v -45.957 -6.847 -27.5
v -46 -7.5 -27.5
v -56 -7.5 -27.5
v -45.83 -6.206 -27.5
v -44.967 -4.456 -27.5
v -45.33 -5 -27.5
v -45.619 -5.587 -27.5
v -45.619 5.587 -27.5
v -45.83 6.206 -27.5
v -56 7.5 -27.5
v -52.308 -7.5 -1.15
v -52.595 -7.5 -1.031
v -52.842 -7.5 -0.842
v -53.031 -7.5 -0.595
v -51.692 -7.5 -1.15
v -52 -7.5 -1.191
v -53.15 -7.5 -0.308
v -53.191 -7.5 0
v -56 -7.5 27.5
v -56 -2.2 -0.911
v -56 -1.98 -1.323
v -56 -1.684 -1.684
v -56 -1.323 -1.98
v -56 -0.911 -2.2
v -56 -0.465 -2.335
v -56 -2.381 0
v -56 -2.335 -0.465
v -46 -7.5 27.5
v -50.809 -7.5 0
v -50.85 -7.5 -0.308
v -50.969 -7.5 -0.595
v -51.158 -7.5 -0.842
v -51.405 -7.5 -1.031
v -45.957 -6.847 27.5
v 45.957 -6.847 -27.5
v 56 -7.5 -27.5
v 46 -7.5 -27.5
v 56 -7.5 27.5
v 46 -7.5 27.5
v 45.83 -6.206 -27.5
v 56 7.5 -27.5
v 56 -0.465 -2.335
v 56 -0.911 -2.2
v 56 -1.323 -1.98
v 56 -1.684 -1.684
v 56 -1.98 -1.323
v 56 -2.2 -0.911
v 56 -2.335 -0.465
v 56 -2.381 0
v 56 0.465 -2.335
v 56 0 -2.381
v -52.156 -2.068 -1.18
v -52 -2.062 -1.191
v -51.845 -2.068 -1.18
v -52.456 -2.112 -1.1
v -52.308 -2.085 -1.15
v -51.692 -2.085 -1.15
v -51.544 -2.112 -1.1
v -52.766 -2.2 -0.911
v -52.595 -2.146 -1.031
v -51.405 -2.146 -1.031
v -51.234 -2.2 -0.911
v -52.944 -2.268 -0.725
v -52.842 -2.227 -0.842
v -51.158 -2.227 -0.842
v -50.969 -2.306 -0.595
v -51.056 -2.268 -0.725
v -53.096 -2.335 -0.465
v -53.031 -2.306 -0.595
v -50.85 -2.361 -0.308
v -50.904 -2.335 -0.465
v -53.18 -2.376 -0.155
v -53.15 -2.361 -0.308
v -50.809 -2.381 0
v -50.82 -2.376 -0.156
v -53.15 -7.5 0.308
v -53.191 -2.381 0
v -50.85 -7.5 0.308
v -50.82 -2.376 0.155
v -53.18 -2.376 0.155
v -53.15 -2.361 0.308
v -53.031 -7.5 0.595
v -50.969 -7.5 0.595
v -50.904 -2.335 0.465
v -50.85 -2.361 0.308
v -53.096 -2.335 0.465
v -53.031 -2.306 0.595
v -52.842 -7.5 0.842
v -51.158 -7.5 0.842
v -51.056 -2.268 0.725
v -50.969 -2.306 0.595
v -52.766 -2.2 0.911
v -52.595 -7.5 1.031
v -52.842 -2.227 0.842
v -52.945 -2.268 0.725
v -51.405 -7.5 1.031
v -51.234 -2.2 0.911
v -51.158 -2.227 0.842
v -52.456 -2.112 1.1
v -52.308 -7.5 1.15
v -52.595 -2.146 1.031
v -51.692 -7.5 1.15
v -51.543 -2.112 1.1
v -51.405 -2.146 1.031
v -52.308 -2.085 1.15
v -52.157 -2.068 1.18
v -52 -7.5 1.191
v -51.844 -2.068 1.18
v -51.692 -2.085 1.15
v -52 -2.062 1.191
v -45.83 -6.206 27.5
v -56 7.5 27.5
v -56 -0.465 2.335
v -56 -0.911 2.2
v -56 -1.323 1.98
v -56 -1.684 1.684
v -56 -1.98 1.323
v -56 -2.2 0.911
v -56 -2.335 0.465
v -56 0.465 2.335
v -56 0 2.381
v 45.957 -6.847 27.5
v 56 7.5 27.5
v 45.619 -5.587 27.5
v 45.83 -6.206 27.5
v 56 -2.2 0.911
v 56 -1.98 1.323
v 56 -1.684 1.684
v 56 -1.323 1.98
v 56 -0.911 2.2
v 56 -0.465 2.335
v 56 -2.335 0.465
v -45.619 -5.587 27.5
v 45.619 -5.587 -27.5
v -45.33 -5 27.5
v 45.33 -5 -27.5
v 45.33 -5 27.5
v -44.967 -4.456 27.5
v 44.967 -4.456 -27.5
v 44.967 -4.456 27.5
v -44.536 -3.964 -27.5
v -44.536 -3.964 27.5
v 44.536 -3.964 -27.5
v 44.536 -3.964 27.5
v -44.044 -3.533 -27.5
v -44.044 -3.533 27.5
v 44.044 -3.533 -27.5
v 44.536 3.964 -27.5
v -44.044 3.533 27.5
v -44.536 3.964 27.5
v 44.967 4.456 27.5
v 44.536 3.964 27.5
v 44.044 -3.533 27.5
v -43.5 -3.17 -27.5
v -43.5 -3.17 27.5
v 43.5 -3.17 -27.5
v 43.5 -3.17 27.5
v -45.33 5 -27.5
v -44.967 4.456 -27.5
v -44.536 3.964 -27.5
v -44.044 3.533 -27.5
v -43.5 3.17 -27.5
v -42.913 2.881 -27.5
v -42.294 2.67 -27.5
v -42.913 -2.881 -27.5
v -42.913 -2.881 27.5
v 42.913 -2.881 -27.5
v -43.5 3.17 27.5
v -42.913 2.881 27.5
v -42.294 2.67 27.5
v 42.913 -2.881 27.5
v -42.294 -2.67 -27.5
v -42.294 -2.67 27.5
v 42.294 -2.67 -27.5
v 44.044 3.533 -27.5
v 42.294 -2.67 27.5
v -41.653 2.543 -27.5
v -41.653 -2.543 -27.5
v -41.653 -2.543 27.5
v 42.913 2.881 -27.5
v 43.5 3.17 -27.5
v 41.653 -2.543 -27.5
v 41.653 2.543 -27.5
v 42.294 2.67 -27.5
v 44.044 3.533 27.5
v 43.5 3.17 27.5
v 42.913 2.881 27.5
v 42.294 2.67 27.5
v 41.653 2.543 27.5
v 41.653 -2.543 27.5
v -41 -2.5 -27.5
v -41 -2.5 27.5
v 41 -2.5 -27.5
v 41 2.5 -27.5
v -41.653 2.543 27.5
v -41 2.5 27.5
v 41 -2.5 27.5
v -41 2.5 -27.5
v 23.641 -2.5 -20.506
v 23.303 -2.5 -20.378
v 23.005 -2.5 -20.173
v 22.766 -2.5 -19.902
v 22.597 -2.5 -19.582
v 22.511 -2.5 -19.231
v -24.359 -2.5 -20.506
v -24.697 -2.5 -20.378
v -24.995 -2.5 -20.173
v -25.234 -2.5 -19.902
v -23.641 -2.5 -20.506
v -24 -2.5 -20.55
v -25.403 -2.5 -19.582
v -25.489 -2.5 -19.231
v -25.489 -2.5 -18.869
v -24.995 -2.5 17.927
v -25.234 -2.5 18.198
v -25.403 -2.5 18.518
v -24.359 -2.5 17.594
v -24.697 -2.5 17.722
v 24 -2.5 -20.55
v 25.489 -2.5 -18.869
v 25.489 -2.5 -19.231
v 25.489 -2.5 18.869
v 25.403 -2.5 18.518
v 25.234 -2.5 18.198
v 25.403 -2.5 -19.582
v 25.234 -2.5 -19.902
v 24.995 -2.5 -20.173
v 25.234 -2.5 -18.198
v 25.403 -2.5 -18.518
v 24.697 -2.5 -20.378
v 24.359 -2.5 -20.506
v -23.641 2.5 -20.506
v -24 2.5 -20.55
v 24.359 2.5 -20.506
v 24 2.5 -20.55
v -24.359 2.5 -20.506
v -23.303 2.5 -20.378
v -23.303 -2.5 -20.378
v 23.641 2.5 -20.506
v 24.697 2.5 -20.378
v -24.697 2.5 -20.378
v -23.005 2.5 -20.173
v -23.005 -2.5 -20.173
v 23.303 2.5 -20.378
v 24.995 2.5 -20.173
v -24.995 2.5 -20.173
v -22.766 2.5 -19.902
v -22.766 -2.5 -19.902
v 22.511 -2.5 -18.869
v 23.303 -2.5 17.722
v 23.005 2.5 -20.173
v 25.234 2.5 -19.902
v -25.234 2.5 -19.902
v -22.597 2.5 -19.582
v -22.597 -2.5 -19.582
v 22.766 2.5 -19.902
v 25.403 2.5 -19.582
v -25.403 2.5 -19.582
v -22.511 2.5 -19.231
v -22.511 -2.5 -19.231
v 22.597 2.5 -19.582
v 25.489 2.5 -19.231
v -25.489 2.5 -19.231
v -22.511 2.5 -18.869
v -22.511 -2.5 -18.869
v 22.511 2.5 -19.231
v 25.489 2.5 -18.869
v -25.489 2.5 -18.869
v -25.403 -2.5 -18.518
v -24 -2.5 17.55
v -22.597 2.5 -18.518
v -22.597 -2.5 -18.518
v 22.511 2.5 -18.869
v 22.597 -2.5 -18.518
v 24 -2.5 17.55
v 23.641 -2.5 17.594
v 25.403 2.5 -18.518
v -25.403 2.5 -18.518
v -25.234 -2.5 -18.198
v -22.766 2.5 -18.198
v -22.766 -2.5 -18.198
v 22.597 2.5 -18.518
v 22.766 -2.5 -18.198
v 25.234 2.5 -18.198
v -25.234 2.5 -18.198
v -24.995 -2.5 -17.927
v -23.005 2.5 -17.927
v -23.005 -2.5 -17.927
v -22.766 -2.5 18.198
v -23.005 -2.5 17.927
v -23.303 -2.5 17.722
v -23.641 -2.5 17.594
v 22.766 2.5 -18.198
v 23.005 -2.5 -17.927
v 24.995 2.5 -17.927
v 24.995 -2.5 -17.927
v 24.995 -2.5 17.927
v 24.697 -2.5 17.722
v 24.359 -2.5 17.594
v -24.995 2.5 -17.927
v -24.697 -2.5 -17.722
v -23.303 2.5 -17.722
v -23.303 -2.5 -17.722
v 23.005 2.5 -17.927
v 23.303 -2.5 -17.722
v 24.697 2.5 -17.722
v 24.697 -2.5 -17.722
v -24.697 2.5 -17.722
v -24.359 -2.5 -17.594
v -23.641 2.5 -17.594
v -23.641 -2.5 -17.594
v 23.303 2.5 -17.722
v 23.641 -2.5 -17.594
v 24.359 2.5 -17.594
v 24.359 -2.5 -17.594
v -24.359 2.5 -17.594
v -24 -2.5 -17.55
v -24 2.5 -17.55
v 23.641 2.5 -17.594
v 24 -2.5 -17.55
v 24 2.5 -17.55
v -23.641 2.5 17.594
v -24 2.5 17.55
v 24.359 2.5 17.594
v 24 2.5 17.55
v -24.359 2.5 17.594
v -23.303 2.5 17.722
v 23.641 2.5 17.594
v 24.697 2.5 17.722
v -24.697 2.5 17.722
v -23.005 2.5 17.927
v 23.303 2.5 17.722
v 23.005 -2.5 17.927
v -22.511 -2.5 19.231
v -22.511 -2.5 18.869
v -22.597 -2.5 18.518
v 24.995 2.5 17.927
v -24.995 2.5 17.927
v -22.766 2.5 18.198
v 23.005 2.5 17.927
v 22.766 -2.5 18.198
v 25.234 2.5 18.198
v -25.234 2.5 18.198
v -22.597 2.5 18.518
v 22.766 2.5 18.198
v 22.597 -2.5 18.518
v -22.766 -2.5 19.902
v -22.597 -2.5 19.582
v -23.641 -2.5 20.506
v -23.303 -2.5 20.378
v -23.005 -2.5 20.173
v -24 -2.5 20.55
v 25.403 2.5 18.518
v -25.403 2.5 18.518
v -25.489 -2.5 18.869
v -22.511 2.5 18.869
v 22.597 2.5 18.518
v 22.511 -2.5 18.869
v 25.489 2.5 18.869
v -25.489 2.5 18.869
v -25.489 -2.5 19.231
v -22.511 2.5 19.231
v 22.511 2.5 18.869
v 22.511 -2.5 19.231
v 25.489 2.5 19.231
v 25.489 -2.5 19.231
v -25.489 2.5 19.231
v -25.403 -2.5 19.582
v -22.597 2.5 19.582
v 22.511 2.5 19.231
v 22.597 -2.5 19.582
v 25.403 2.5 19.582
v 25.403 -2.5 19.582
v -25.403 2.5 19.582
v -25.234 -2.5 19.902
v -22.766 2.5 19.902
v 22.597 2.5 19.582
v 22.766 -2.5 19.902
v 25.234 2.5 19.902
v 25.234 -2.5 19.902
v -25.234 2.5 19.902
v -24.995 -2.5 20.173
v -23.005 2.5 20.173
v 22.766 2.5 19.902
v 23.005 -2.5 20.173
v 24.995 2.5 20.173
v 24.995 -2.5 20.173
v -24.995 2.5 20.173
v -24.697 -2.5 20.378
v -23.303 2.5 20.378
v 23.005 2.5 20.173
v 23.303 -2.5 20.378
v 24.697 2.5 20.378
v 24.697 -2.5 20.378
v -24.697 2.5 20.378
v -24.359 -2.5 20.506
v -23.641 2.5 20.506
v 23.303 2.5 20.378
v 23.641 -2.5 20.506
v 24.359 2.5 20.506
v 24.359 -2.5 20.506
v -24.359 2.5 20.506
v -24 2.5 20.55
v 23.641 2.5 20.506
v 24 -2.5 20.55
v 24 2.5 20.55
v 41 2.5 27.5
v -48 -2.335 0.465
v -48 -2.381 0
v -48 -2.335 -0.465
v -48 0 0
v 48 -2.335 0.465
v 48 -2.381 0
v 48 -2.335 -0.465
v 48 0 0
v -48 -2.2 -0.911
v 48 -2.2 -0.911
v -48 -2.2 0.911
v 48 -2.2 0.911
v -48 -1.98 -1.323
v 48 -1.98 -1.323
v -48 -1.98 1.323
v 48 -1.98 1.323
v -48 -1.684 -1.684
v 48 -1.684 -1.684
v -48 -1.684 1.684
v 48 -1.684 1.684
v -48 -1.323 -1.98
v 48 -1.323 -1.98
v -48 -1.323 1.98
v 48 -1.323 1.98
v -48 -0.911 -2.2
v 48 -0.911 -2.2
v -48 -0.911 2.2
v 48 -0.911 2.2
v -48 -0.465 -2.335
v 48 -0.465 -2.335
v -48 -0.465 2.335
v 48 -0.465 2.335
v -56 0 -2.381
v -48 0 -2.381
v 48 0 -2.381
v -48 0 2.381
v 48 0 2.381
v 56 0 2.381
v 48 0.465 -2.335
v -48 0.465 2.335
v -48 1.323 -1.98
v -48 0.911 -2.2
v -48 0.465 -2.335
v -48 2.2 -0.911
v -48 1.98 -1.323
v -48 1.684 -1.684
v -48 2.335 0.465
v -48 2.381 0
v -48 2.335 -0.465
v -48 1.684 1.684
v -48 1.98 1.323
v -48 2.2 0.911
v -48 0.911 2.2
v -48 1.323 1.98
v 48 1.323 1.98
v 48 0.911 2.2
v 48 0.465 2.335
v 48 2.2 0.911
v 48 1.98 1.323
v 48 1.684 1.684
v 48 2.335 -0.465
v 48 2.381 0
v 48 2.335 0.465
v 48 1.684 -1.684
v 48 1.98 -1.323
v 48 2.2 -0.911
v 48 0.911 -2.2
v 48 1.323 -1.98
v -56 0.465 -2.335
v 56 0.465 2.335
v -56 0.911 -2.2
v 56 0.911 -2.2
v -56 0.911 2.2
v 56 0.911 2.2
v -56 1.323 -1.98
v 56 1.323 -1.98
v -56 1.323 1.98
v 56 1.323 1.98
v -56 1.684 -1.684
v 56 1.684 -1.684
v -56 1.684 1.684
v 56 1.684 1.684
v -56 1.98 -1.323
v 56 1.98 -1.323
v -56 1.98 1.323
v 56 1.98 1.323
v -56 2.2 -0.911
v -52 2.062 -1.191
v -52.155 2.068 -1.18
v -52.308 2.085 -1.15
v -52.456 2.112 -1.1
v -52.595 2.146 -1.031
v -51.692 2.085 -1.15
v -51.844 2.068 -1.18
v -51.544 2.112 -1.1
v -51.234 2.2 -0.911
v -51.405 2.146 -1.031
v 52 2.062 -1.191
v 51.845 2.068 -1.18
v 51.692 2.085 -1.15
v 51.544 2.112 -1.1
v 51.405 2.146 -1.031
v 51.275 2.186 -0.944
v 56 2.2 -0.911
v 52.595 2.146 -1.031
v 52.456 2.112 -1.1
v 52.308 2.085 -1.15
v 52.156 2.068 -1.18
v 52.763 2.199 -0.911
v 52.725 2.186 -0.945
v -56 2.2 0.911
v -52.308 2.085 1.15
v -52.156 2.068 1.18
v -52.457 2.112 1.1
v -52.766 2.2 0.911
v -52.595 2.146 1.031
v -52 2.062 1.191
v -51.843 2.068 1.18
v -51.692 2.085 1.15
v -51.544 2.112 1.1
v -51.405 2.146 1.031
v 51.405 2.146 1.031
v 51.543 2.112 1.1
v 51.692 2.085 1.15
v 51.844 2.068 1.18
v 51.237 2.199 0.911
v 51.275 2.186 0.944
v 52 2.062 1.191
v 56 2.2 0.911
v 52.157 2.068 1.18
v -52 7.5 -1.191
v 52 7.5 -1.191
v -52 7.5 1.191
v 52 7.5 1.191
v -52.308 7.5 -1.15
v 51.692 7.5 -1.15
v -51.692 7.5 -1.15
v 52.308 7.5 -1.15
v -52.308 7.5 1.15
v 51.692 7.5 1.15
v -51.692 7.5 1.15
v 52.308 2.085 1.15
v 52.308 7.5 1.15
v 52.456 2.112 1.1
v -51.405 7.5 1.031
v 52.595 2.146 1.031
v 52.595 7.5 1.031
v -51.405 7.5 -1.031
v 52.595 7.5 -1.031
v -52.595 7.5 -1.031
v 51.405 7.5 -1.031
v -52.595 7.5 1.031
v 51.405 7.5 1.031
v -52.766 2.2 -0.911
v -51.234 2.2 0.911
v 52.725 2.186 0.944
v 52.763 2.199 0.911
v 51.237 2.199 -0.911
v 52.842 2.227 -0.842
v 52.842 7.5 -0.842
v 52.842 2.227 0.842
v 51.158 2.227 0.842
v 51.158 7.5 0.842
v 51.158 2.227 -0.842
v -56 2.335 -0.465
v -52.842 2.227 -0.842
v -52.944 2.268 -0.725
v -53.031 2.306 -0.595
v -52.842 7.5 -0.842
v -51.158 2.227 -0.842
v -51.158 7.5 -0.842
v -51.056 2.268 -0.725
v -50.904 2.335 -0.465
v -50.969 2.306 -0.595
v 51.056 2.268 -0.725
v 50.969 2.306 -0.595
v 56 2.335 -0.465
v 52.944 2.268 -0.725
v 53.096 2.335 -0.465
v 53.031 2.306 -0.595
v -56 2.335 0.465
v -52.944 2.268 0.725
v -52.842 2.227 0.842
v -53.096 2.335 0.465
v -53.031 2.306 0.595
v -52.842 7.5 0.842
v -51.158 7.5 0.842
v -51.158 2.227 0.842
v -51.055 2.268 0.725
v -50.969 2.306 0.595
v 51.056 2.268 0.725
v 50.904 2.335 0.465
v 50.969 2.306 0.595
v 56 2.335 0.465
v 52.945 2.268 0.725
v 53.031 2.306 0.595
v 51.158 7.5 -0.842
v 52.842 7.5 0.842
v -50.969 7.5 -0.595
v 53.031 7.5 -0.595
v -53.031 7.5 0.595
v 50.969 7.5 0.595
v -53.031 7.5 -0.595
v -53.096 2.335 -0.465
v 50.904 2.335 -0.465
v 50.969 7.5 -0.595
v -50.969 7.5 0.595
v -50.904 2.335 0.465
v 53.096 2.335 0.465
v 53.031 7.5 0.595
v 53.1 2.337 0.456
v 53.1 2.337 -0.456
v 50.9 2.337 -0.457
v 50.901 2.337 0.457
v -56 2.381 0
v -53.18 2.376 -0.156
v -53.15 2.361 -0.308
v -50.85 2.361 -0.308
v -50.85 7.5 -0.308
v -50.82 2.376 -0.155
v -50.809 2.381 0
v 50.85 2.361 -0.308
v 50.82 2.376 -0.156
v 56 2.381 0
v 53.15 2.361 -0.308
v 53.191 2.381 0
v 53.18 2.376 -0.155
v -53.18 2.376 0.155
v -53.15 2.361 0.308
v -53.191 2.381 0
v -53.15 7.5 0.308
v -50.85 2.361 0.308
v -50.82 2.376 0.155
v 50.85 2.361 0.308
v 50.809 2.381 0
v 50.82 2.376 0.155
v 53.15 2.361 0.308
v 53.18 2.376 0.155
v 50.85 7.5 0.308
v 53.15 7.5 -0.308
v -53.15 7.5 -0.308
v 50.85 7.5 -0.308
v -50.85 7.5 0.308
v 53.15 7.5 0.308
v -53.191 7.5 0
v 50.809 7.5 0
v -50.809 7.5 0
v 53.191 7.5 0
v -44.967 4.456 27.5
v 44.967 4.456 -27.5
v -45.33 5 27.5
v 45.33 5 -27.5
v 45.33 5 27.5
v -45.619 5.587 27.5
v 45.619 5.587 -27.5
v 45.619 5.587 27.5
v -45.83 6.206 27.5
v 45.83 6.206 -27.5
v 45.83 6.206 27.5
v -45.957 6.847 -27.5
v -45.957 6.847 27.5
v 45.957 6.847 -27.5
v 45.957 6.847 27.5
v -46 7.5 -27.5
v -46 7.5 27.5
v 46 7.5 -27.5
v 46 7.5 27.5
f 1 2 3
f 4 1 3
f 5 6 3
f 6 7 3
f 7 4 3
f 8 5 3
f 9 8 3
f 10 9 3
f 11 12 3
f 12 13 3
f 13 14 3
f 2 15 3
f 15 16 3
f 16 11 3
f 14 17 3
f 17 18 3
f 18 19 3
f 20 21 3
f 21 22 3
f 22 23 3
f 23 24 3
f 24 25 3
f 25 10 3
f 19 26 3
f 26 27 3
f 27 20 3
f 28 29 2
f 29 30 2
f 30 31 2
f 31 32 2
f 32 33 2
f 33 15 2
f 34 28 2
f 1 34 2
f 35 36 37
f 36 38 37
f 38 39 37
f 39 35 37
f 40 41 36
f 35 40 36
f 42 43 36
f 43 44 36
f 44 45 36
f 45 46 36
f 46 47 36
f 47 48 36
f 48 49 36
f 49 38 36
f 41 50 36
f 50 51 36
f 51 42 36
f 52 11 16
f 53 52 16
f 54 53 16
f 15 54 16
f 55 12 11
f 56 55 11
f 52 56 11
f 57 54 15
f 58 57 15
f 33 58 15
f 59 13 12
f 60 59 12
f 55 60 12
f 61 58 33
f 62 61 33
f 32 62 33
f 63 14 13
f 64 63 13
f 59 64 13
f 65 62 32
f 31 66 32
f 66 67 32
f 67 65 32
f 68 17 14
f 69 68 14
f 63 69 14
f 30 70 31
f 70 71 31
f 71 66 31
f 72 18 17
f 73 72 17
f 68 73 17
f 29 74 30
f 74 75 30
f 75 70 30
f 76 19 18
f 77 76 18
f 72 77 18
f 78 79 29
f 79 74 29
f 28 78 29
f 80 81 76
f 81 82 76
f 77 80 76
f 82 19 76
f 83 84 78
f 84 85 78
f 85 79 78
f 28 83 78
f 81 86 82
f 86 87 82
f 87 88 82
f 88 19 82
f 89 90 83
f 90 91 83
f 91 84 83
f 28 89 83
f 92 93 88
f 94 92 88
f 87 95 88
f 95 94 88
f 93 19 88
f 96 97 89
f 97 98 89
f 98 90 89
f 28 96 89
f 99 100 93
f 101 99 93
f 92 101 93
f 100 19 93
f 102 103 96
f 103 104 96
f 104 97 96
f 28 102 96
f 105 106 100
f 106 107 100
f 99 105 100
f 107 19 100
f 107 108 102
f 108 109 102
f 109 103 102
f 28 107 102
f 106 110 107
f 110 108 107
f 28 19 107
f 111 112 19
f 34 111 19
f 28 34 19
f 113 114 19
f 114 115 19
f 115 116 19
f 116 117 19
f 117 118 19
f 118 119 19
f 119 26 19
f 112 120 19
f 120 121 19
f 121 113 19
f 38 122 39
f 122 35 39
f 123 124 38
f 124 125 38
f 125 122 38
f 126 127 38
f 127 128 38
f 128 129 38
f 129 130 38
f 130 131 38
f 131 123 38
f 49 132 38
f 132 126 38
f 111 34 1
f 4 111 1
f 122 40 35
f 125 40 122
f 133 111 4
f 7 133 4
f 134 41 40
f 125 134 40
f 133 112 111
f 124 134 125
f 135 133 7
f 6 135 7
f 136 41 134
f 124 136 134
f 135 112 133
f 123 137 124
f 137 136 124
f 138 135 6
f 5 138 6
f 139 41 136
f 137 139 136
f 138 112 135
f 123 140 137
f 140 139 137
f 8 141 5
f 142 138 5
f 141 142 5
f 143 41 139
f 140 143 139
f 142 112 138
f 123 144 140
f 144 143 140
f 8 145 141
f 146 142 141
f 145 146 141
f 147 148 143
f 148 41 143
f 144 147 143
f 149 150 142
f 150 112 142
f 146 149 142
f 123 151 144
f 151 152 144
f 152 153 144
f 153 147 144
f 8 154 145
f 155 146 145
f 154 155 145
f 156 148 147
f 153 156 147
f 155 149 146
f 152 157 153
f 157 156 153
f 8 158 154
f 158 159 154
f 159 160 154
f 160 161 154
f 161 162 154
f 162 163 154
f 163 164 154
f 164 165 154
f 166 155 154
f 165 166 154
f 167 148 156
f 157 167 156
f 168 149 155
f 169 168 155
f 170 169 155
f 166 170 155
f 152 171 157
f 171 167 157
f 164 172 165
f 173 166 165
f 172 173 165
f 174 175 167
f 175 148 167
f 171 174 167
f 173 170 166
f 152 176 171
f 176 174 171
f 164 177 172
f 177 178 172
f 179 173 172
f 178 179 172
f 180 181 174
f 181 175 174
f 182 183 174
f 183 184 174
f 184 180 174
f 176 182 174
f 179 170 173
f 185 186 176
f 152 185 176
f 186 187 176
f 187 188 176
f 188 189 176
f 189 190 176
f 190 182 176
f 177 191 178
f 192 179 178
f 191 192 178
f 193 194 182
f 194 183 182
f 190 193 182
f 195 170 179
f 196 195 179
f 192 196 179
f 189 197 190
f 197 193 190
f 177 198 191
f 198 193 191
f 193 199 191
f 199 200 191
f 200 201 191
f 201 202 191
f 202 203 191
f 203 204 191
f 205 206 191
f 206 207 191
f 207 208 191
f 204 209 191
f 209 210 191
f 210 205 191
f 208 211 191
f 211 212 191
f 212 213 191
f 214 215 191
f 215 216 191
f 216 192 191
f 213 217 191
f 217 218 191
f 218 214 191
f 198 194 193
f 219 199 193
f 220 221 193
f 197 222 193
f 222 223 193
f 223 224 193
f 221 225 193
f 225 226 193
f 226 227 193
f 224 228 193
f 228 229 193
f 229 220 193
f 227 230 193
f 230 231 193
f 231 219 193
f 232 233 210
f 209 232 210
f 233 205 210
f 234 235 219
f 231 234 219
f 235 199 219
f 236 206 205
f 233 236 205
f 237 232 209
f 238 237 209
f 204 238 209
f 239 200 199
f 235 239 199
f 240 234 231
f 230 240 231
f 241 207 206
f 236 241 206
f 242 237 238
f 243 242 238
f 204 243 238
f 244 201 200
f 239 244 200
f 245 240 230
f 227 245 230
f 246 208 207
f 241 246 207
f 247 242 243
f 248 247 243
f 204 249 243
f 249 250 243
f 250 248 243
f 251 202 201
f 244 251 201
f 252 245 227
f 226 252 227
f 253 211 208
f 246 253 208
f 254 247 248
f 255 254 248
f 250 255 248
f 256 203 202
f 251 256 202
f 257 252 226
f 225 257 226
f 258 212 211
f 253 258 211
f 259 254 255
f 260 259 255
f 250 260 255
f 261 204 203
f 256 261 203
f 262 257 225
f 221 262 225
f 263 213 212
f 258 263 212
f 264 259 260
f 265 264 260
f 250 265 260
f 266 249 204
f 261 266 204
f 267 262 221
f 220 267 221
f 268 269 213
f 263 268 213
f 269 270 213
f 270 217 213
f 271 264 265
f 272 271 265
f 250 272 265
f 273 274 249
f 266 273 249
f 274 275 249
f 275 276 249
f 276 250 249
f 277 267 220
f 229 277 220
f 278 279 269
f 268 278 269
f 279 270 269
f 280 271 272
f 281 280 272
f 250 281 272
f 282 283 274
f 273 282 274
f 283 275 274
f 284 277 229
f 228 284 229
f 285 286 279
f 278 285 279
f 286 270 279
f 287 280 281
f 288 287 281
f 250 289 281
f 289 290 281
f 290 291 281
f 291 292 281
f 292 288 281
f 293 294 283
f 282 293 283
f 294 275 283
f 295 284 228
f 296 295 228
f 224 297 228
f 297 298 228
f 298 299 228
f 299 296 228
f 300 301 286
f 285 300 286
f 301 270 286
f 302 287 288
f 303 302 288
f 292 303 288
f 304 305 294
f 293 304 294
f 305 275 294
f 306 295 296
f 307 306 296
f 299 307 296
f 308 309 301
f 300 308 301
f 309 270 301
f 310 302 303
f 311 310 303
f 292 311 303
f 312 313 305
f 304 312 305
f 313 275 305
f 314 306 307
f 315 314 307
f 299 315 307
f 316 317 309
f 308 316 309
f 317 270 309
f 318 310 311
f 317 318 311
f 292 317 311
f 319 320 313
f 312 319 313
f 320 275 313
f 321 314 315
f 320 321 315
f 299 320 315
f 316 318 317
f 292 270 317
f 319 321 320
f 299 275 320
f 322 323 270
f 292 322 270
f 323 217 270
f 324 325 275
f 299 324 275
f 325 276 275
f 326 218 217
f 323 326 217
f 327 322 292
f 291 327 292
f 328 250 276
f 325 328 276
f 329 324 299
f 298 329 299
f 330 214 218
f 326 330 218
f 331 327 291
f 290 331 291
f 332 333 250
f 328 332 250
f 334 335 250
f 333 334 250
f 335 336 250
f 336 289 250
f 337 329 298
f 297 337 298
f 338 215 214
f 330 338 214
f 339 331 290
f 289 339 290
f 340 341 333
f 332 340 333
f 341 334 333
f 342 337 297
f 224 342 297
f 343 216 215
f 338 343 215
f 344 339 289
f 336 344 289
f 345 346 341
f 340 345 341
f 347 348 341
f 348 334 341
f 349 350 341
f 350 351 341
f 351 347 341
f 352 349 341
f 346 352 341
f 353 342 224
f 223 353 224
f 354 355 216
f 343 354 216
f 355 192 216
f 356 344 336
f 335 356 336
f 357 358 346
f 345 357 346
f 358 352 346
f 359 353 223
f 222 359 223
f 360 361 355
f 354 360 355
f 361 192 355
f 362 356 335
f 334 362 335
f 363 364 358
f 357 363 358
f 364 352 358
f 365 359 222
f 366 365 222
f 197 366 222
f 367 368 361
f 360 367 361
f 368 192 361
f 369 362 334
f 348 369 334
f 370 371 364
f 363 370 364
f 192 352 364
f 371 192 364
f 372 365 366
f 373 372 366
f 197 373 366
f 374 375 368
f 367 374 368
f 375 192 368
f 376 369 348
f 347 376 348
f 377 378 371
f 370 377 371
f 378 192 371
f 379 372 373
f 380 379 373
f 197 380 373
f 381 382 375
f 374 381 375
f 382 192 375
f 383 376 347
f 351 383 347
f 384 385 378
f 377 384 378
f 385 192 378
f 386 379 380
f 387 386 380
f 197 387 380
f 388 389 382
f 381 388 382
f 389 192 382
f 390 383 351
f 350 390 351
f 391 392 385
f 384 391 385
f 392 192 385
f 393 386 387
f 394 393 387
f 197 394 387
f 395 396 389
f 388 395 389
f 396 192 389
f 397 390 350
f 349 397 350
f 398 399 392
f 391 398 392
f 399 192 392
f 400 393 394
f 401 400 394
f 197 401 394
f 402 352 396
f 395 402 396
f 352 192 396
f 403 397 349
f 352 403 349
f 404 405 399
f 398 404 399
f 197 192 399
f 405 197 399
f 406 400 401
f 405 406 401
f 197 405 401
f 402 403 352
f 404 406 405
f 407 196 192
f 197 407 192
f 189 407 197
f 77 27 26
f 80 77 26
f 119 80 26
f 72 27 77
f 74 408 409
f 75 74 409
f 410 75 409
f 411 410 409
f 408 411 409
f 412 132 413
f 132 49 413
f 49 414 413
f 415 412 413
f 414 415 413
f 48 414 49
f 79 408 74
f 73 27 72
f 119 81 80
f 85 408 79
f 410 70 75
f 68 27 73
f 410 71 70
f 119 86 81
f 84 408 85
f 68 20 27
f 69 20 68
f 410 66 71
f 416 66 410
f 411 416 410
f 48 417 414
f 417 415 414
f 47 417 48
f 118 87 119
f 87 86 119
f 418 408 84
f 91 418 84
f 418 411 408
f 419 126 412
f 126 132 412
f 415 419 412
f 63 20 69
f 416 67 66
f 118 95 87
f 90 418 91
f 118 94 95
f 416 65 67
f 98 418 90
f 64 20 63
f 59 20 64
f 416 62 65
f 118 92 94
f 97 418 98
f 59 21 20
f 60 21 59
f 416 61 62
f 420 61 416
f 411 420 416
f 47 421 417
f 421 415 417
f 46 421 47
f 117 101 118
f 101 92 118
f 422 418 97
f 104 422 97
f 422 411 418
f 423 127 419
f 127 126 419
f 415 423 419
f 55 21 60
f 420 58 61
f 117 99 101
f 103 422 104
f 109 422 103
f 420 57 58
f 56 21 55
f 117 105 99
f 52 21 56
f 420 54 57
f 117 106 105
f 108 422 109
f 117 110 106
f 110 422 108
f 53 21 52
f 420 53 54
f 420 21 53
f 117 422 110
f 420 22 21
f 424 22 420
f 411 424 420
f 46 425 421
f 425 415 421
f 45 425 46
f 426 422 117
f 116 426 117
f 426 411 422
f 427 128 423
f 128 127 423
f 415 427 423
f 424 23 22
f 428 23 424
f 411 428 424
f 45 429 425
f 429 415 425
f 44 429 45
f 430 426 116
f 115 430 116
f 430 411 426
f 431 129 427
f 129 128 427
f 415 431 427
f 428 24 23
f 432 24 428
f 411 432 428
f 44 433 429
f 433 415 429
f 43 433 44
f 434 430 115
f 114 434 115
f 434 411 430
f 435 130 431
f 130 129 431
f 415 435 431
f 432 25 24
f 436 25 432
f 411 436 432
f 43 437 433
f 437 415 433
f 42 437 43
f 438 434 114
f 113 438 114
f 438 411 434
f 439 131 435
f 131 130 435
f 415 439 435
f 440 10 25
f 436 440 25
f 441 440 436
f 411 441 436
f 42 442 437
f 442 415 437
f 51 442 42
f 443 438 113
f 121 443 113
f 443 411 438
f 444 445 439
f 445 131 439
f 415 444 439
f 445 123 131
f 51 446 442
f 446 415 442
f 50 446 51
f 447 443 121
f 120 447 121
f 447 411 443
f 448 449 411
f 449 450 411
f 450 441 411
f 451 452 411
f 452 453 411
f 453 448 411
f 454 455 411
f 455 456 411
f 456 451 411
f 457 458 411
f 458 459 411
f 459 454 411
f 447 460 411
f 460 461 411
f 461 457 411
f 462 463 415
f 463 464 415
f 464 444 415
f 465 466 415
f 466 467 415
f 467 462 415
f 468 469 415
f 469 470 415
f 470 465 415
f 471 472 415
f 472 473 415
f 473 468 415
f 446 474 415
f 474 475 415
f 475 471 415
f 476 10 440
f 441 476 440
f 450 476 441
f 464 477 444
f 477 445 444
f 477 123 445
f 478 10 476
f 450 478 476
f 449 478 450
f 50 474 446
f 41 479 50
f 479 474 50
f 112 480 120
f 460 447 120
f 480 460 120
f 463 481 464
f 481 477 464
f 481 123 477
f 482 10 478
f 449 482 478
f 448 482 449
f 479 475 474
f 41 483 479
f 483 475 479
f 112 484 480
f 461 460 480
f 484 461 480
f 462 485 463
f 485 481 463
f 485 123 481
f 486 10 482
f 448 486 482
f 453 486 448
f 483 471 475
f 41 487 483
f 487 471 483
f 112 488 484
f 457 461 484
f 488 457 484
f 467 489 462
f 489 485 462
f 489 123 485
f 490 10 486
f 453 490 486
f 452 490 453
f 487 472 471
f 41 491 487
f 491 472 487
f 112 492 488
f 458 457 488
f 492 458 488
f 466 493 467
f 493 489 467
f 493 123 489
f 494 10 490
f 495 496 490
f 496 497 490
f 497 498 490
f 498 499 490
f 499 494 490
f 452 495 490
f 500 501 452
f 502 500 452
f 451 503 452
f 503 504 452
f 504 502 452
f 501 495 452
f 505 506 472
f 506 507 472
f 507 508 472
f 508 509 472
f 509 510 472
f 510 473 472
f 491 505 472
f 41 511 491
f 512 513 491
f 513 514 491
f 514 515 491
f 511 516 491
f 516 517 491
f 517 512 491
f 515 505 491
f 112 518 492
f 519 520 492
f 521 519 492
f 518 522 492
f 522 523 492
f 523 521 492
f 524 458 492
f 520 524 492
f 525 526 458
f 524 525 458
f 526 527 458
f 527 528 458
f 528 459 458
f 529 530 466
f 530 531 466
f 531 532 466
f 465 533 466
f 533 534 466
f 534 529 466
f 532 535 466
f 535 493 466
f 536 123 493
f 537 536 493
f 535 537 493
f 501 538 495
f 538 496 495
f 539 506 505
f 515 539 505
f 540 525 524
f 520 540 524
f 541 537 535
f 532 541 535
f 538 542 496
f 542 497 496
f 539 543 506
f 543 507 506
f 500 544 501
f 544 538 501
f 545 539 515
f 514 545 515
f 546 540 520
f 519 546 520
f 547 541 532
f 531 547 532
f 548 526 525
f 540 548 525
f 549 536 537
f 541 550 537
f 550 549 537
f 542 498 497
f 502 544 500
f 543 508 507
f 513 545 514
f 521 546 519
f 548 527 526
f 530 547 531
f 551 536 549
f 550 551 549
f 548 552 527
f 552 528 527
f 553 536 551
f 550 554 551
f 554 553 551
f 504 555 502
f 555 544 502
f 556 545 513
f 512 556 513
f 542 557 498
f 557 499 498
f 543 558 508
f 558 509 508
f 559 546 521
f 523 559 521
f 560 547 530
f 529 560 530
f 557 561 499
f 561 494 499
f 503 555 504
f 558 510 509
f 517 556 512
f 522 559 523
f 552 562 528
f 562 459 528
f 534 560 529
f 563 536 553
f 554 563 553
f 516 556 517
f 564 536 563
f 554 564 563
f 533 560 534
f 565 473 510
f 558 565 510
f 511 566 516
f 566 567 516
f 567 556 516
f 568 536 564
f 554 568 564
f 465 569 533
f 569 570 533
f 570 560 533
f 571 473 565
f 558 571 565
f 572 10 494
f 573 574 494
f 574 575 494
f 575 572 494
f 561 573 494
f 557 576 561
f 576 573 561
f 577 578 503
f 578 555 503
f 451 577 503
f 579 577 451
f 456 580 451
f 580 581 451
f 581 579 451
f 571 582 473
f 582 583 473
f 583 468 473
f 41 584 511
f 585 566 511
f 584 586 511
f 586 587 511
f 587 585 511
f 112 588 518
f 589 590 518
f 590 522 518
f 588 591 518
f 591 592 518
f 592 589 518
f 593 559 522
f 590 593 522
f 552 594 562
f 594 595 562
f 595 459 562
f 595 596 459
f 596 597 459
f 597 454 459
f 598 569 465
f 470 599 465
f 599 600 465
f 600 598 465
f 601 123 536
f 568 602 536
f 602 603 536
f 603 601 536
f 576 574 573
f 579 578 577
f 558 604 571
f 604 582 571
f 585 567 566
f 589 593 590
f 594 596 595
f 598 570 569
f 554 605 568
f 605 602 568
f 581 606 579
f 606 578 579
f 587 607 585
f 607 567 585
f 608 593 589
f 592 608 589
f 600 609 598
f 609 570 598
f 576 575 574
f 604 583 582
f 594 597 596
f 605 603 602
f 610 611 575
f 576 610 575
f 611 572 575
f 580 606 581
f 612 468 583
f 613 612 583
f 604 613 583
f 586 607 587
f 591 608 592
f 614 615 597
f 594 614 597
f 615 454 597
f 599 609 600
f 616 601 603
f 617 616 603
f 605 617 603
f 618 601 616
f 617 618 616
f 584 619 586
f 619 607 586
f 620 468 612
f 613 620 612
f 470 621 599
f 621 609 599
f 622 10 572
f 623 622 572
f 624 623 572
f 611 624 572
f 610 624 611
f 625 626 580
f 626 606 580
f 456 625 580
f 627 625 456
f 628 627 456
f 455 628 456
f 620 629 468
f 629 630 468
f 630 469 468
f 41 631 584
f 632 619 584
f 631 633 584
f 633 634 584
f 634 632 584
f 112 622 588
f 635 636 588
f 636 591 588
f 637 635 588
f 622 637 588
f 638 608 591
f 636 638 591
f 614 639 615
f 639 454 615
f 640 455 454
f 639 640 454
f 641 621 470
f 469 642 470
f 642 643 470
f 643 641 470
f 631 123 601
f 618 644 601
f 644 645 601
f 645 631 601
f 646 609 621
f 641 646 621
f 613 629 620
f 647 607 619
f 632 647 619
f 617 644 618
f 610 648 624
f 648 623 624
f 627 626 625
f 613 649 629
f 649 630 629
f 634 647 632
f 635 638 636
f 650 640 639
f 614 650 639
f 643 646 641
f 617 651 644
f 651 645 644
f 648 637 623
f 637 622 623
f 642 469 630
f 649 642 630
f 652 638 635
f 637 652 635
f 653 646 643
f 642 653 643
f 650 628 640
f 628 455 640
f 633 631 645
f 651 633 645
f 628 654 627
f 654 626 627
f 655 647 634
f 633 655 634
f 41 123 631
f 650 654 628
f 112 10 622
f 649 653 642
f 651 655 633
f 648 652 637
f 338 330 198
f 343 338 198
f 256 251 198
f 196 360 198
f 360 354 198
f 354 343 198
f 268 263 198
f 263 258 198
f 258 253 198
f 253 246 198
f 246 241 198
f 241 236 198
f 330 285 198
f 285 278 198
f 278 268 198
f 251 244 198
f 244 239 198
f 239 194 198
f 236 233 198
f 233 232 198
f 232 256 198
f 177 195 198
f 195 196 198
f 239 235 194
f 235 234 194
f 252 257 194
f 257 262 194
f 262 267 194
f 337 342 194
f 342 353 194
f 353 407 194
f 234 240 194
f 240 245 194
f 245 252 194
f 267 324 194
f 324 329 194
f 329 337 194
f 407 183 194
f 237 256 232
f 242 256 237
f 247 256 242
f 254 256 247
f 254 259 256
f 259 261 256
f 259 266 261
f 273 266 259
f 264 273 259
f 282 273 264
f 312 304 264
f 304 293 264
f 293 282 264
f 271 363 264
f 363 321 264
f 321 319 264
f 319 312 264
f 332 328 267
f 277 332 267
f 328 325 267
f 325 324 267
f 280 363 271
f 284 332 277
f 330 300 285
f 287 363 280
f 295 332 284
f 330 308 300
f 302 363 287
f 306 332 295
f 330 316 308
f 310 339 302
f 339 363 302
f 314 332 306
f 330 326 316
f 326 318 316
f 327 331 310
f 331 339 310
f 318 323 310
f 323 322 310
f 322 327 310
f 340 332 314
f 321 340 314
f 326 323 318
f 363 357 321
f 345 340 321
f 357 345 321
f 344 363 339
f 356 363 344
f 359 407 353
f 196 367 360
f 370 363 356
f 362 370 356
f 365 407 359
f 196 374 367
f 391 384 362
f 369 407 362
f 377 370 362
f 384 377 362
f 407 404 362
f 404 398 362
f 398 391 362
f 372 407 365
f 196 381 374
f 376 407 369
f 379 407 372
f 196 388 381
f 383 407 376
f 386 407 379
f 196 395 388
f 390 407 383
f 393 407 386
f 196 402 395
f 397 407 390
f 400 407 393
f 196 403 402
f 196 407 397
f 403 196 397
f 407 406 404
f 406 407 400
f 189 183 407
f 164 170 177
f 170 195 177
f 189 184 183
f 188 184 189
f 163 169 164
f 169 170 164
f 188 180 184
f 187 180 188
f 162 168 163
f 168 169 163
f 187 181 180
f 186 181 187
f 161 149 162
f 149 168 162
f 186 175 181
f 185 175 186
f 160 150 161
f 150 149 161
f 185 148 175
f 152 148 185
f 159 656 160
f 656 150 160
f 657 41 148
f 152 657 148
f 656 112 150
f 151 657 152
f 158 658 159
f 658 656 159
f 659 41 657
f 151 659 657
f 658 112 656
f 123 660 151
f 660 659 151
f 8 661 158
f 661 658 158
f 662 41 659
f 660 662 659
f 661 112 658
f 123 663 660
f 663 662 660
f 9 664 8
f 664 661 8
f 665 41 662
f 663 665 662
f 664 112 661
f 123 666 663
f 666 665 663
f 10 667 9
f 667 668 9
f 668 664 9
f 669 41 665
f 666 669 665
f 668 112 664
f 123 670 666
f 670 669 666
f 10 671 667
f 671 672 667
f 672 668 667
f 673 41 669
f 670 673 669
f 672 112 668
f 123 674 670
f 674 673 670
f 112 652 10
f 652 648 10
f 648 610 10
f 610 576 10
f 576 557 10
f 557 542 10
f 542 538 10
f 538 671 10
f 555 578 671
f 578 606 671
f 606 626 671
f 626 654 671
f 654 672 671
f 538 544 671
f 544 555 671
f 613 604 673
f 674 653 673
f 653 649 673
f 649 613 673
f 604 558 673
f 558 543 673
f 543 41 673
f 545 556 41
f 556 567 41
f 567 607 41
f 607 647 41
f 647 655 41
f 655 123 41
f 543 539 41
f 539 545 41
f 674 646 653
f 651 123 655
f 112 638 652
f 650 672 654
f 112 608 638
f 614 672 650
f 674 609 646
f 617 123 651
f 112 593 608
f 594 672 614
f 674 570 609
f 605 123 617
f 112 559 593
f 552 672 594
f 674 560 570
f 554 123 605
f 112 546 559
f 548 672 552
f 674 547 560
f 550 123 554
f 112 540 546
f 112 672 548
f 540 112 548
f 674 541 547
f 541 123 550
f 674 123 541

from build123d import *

# Parameters (mm, degrees)
SKETCH1_W           = 92
SKETCH1_H           = 55
SKETCH1_R           = 1.5
BOSS_EXTRUDE3_DEPTH = 2.5
SKETCH4_W           = 55
SKETCH4_H           = 15
BOSS_EXTRUDE4_DEPTH = 10
SKETCH5_W           = 55
SKETCH5_H           = 15
BOSS_EXTRUDE5_DEPTH = 10
SKETCH6_R           = 2.38125
CUT_EXTRUDE1_DEPTH  = 8
CUT_EXTRUDE2_REACH  = 66.166
SKETCH7_R           = 1.190625
CUT_EXTRUDE4_START  = -8
SKETCH8_R           = 2.38125
CUT_EXTRUDE4_DEPTH  = 8
FILLET1_R           = 5


with BuildPart() as part:
    # Sketch1 → Boss-Extrude3 (new, symmetric)
    with BuildSketch(Plane(origin=(0, 0, 0), x_dir=(1, 0, 0), z_dir=(0, 1, 0))):
        Rectangle(SKETCH1_W, SKETCH1_H)
        with Locations(Location((-24, 19.05, 0), (0, 0, 270))):
            Circle(SKETCH1_R, mode=Mode.SUBTRACT)
        with Locations(Location((24, 19.05, 0), (0, 0, 270))):
            Circle(SKETCH1_R, mode=Mode.SUBTRACT)
        with Locations(Location((-24, -19.05, 0), (0, 0, 270))):
            Circle(SKETCH1_R, mode=Mode.SUBTRACT)
        with Locations(Location((24, -19.05, 0), (0, 0, 270))):
            Circle(SKETCH1_R, mode=Mode.SUBTRACT)
    extrude(amount=BOSS_EXTRUDE3_DEPTH, both=True)

    # Sketch4 → Boss-Extrude4 (add)
    with BuildSketch(Plane(origin=(46, 0, 0), x_dir=(0, 0, -1), z_dir=(1, 0, 0))):
        Rectangle(SKETCH4_W, SKETCH4_H)
    extrude(amount=BOSS_EXTRUDE4_DEPTH)

    # Sketch5 → Boss-Extrude5 (add)
    with BuildSketch(Plane.ZY.offset(46)):
        Rectangle(SKETCH5_W, SKETCH5_H)
    extrude(amount=BOSS_EXTRUDE5_DEPTH)

    # Sketch6 → Cut-Extrude1 (cut)
    with BuildSketch(Plane(origin=(56, 0, 0), x_dir=(0, 0, -1), z_dir=(1, 0, 0))):
        Circle(SKETCH6_R)
    extrude(amount=-CUT_EXTRUDE1_DEPTH, mode=Mode.SUBTRACT)

    # Sketch7 → Cut-Extrude2 (cut, up to next)
    with BuildSketch(Plane(origin=(0, 7.5, 0), x_dir=(1, 0, 0), z_dir=(0, 1, 0)), mode=Mode.PRIVATE) as cut_extrude2_sk1:
        with Locations(Location((52, 0, 0), (0, 0, 270))):
            Circle(SKETCH7_R)
    cut_extrude2_tool1 = extrude(cut_extrude2_sk1.sketch, amount=-CUT_EXTRUDE2_REACH, mode=Mode.PRIVATE) & part.part
    # Sketch7 → Cut-Extrude2 (cut, up to next)
    with BuildSketch(Plane(origin=(0, 7.5, 0), x_dir=(1, 0, 0), z_dir=(0, 1, 0)), mode=Mode.PRIVATE) as cut_extrude2_sk2:
        with Locations(Location((-52, 0, 0), (0, 0, 270))):
            Circle(SKETCH7_R)
    cut_extrude2_tool2 = extrude(cut_extrude2_sk2.sketch, amount=-CUT_EXTRUDE2_REACH, mode=Mode.PRIVATE) & part.part
    add(cut_extrude2_tool1.solids().sort_by_distance((52, 7.5, 0))[0], mode=Mode.SUBTRACT)
    add(cut_extrude2_tool2.solids().sort_by_distance((-52, 7.5, 0))[0], mode=Mode.SUBTRACT)

    # Sketch8 → Cut-Extrude4 (cut)
    with BuildSketch(Plane.ZY.offset(56).offset(CUT_EXTRUDE4_START)):
        with Locations(Location((0, 0, 0), (0, 0, 180))):
            Circle(SKETCH8_R)
    extrude(amount=CUT_EXTRUDE4_DEPTH, mode=Mode.SUBTRACT)

    # Fillet1
    fillet1_edges = [part.edges().sort_by_distance(p)[0] for p in [
        (-46, -2.5, 0),
        (46, -2.5, 0),
        (46, 2.5, 0),
        (-46, 2.5, 0),
    ]]
    fillet(fillet1_edges, radius=FILLET1_R - 0.0001)  # a hair under: the kernel refuses the full size


solid = part.part
